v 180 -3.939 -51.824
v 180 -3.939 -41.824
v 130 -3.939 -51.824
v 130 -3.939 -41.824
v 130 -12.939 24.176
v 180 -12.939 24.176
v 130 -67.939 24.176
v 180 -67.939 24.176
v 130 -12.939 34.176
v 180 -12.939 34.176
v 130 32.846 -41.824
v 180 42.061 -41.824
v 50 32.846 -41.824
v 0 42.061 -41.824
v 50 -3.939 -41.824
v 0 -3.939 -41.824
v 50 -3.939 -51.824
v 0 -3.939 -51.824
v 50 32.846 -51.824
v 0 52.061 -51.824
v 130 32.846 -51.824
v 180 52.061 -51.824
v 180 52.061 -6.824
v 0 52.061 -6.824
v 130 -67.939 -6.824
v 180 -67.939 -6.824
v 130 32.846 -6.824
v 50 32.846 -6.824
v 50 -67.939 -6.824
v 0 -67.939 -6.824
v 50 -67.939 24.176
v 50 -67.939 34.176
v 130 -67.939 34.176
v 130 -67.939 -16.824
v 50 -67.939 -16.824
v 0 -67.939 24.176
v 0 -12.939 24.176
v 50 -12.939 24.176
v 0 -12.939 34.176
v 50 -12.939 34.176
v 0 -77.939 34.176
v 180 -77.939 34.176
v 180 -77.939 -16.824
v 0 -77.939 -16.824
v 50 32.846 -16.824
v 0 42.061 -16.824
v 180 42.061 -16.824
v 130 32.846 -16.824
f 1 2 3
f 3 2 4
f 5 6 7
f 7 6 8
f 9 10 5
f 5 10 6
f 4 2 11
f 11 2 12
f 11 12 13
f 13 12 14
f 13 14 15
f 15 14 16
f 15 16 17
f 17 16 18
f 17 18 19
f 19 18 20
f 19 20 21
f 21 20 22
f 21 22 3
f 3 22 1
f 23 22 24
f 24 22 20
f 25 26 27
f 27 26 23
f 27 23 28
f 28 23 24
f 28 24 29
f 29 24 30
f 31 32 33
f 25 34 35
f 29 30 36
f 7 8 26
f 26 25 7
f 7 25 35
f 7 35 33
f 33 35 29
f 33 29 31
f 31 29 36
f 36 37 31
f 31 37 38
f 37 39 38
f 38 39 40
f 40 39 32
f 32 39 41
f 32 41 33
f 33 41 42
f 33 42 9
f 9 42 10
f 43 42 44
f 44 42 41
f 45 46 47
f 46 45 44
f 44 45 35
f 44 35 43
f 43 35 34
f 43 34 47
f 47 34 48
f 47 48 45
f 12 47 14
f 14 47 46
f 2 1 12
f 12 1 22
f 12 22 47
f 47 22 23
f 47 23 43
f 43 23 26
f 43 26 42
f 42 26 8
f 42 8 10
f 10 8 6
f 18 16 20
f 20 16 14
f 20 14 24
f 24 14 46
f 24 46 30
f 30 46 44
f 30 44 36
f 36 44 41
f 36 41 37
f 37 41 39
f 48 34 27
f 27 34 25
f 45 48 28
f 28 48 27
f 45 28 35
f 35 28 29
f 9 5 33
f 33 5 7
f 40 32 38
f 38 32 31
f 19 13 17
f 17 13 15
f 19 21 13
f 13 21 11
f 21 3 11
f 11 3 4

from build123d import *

# Parameters (mm, degrees)
BOSS_EXTRUDE1_DEPTH     = 180
CUT_EXTRUDE1_DEPTH      = 202.244874193
CUT_EXTRUDE1_DEPTH_BACK = 202.244874193
SKETCH3_W               = 80
SKETCH3_H               = 100.784598353


with BuildPart() as part:
    # Sketch1 → Boss-Extrude1 (new body)
    with BuildSketch(Plane(origin=(0, 0, 0), x_dir=(0, 0, -1), z_dir=(1, 0, 0))):
        Polygon((41.824095604, 42.060925147), (41.824095604, -3.939074853), (51.824095604, -3.939074853), (51.824095604, 52.060925147), (6.824095604, 52.060925147), (6.824095604, -77.939074853), (16.824095604, -77.939074853), (16.824095604, 42.060925147), align=None)
        Polygon((6.824095604, -77.939074853), (6.824095604, -67.939074853), (-24.175904396, -67.939074853), (-24.175904396, -12.939074853), (-34.175904396, -12.939074853), (-34.175904396, -77.939074853), align=None)
    extrude(amount=BOSS_EXTRUDE1_DEPTH)

    # Sketch3 → Cut-Extrude1 (cut, two sides: drawn at the far end of the back side and taken through both)
    with BuildSketch(Plane.XY.offset(-6.824095604).offset(-CUT_EXTRUDE1_DEPTH_BACK)):
        with Locations((90, -17.546775677)):
            Rectangle(SKETCH3_W, SKETCH3_H)
    extrude(amount=CUT_EXTRUDE1_DEPTH + CUT_EXTRUDE1_DEPTH_BACK, mode=Mode.SUBTRACT)


solid = part.part
